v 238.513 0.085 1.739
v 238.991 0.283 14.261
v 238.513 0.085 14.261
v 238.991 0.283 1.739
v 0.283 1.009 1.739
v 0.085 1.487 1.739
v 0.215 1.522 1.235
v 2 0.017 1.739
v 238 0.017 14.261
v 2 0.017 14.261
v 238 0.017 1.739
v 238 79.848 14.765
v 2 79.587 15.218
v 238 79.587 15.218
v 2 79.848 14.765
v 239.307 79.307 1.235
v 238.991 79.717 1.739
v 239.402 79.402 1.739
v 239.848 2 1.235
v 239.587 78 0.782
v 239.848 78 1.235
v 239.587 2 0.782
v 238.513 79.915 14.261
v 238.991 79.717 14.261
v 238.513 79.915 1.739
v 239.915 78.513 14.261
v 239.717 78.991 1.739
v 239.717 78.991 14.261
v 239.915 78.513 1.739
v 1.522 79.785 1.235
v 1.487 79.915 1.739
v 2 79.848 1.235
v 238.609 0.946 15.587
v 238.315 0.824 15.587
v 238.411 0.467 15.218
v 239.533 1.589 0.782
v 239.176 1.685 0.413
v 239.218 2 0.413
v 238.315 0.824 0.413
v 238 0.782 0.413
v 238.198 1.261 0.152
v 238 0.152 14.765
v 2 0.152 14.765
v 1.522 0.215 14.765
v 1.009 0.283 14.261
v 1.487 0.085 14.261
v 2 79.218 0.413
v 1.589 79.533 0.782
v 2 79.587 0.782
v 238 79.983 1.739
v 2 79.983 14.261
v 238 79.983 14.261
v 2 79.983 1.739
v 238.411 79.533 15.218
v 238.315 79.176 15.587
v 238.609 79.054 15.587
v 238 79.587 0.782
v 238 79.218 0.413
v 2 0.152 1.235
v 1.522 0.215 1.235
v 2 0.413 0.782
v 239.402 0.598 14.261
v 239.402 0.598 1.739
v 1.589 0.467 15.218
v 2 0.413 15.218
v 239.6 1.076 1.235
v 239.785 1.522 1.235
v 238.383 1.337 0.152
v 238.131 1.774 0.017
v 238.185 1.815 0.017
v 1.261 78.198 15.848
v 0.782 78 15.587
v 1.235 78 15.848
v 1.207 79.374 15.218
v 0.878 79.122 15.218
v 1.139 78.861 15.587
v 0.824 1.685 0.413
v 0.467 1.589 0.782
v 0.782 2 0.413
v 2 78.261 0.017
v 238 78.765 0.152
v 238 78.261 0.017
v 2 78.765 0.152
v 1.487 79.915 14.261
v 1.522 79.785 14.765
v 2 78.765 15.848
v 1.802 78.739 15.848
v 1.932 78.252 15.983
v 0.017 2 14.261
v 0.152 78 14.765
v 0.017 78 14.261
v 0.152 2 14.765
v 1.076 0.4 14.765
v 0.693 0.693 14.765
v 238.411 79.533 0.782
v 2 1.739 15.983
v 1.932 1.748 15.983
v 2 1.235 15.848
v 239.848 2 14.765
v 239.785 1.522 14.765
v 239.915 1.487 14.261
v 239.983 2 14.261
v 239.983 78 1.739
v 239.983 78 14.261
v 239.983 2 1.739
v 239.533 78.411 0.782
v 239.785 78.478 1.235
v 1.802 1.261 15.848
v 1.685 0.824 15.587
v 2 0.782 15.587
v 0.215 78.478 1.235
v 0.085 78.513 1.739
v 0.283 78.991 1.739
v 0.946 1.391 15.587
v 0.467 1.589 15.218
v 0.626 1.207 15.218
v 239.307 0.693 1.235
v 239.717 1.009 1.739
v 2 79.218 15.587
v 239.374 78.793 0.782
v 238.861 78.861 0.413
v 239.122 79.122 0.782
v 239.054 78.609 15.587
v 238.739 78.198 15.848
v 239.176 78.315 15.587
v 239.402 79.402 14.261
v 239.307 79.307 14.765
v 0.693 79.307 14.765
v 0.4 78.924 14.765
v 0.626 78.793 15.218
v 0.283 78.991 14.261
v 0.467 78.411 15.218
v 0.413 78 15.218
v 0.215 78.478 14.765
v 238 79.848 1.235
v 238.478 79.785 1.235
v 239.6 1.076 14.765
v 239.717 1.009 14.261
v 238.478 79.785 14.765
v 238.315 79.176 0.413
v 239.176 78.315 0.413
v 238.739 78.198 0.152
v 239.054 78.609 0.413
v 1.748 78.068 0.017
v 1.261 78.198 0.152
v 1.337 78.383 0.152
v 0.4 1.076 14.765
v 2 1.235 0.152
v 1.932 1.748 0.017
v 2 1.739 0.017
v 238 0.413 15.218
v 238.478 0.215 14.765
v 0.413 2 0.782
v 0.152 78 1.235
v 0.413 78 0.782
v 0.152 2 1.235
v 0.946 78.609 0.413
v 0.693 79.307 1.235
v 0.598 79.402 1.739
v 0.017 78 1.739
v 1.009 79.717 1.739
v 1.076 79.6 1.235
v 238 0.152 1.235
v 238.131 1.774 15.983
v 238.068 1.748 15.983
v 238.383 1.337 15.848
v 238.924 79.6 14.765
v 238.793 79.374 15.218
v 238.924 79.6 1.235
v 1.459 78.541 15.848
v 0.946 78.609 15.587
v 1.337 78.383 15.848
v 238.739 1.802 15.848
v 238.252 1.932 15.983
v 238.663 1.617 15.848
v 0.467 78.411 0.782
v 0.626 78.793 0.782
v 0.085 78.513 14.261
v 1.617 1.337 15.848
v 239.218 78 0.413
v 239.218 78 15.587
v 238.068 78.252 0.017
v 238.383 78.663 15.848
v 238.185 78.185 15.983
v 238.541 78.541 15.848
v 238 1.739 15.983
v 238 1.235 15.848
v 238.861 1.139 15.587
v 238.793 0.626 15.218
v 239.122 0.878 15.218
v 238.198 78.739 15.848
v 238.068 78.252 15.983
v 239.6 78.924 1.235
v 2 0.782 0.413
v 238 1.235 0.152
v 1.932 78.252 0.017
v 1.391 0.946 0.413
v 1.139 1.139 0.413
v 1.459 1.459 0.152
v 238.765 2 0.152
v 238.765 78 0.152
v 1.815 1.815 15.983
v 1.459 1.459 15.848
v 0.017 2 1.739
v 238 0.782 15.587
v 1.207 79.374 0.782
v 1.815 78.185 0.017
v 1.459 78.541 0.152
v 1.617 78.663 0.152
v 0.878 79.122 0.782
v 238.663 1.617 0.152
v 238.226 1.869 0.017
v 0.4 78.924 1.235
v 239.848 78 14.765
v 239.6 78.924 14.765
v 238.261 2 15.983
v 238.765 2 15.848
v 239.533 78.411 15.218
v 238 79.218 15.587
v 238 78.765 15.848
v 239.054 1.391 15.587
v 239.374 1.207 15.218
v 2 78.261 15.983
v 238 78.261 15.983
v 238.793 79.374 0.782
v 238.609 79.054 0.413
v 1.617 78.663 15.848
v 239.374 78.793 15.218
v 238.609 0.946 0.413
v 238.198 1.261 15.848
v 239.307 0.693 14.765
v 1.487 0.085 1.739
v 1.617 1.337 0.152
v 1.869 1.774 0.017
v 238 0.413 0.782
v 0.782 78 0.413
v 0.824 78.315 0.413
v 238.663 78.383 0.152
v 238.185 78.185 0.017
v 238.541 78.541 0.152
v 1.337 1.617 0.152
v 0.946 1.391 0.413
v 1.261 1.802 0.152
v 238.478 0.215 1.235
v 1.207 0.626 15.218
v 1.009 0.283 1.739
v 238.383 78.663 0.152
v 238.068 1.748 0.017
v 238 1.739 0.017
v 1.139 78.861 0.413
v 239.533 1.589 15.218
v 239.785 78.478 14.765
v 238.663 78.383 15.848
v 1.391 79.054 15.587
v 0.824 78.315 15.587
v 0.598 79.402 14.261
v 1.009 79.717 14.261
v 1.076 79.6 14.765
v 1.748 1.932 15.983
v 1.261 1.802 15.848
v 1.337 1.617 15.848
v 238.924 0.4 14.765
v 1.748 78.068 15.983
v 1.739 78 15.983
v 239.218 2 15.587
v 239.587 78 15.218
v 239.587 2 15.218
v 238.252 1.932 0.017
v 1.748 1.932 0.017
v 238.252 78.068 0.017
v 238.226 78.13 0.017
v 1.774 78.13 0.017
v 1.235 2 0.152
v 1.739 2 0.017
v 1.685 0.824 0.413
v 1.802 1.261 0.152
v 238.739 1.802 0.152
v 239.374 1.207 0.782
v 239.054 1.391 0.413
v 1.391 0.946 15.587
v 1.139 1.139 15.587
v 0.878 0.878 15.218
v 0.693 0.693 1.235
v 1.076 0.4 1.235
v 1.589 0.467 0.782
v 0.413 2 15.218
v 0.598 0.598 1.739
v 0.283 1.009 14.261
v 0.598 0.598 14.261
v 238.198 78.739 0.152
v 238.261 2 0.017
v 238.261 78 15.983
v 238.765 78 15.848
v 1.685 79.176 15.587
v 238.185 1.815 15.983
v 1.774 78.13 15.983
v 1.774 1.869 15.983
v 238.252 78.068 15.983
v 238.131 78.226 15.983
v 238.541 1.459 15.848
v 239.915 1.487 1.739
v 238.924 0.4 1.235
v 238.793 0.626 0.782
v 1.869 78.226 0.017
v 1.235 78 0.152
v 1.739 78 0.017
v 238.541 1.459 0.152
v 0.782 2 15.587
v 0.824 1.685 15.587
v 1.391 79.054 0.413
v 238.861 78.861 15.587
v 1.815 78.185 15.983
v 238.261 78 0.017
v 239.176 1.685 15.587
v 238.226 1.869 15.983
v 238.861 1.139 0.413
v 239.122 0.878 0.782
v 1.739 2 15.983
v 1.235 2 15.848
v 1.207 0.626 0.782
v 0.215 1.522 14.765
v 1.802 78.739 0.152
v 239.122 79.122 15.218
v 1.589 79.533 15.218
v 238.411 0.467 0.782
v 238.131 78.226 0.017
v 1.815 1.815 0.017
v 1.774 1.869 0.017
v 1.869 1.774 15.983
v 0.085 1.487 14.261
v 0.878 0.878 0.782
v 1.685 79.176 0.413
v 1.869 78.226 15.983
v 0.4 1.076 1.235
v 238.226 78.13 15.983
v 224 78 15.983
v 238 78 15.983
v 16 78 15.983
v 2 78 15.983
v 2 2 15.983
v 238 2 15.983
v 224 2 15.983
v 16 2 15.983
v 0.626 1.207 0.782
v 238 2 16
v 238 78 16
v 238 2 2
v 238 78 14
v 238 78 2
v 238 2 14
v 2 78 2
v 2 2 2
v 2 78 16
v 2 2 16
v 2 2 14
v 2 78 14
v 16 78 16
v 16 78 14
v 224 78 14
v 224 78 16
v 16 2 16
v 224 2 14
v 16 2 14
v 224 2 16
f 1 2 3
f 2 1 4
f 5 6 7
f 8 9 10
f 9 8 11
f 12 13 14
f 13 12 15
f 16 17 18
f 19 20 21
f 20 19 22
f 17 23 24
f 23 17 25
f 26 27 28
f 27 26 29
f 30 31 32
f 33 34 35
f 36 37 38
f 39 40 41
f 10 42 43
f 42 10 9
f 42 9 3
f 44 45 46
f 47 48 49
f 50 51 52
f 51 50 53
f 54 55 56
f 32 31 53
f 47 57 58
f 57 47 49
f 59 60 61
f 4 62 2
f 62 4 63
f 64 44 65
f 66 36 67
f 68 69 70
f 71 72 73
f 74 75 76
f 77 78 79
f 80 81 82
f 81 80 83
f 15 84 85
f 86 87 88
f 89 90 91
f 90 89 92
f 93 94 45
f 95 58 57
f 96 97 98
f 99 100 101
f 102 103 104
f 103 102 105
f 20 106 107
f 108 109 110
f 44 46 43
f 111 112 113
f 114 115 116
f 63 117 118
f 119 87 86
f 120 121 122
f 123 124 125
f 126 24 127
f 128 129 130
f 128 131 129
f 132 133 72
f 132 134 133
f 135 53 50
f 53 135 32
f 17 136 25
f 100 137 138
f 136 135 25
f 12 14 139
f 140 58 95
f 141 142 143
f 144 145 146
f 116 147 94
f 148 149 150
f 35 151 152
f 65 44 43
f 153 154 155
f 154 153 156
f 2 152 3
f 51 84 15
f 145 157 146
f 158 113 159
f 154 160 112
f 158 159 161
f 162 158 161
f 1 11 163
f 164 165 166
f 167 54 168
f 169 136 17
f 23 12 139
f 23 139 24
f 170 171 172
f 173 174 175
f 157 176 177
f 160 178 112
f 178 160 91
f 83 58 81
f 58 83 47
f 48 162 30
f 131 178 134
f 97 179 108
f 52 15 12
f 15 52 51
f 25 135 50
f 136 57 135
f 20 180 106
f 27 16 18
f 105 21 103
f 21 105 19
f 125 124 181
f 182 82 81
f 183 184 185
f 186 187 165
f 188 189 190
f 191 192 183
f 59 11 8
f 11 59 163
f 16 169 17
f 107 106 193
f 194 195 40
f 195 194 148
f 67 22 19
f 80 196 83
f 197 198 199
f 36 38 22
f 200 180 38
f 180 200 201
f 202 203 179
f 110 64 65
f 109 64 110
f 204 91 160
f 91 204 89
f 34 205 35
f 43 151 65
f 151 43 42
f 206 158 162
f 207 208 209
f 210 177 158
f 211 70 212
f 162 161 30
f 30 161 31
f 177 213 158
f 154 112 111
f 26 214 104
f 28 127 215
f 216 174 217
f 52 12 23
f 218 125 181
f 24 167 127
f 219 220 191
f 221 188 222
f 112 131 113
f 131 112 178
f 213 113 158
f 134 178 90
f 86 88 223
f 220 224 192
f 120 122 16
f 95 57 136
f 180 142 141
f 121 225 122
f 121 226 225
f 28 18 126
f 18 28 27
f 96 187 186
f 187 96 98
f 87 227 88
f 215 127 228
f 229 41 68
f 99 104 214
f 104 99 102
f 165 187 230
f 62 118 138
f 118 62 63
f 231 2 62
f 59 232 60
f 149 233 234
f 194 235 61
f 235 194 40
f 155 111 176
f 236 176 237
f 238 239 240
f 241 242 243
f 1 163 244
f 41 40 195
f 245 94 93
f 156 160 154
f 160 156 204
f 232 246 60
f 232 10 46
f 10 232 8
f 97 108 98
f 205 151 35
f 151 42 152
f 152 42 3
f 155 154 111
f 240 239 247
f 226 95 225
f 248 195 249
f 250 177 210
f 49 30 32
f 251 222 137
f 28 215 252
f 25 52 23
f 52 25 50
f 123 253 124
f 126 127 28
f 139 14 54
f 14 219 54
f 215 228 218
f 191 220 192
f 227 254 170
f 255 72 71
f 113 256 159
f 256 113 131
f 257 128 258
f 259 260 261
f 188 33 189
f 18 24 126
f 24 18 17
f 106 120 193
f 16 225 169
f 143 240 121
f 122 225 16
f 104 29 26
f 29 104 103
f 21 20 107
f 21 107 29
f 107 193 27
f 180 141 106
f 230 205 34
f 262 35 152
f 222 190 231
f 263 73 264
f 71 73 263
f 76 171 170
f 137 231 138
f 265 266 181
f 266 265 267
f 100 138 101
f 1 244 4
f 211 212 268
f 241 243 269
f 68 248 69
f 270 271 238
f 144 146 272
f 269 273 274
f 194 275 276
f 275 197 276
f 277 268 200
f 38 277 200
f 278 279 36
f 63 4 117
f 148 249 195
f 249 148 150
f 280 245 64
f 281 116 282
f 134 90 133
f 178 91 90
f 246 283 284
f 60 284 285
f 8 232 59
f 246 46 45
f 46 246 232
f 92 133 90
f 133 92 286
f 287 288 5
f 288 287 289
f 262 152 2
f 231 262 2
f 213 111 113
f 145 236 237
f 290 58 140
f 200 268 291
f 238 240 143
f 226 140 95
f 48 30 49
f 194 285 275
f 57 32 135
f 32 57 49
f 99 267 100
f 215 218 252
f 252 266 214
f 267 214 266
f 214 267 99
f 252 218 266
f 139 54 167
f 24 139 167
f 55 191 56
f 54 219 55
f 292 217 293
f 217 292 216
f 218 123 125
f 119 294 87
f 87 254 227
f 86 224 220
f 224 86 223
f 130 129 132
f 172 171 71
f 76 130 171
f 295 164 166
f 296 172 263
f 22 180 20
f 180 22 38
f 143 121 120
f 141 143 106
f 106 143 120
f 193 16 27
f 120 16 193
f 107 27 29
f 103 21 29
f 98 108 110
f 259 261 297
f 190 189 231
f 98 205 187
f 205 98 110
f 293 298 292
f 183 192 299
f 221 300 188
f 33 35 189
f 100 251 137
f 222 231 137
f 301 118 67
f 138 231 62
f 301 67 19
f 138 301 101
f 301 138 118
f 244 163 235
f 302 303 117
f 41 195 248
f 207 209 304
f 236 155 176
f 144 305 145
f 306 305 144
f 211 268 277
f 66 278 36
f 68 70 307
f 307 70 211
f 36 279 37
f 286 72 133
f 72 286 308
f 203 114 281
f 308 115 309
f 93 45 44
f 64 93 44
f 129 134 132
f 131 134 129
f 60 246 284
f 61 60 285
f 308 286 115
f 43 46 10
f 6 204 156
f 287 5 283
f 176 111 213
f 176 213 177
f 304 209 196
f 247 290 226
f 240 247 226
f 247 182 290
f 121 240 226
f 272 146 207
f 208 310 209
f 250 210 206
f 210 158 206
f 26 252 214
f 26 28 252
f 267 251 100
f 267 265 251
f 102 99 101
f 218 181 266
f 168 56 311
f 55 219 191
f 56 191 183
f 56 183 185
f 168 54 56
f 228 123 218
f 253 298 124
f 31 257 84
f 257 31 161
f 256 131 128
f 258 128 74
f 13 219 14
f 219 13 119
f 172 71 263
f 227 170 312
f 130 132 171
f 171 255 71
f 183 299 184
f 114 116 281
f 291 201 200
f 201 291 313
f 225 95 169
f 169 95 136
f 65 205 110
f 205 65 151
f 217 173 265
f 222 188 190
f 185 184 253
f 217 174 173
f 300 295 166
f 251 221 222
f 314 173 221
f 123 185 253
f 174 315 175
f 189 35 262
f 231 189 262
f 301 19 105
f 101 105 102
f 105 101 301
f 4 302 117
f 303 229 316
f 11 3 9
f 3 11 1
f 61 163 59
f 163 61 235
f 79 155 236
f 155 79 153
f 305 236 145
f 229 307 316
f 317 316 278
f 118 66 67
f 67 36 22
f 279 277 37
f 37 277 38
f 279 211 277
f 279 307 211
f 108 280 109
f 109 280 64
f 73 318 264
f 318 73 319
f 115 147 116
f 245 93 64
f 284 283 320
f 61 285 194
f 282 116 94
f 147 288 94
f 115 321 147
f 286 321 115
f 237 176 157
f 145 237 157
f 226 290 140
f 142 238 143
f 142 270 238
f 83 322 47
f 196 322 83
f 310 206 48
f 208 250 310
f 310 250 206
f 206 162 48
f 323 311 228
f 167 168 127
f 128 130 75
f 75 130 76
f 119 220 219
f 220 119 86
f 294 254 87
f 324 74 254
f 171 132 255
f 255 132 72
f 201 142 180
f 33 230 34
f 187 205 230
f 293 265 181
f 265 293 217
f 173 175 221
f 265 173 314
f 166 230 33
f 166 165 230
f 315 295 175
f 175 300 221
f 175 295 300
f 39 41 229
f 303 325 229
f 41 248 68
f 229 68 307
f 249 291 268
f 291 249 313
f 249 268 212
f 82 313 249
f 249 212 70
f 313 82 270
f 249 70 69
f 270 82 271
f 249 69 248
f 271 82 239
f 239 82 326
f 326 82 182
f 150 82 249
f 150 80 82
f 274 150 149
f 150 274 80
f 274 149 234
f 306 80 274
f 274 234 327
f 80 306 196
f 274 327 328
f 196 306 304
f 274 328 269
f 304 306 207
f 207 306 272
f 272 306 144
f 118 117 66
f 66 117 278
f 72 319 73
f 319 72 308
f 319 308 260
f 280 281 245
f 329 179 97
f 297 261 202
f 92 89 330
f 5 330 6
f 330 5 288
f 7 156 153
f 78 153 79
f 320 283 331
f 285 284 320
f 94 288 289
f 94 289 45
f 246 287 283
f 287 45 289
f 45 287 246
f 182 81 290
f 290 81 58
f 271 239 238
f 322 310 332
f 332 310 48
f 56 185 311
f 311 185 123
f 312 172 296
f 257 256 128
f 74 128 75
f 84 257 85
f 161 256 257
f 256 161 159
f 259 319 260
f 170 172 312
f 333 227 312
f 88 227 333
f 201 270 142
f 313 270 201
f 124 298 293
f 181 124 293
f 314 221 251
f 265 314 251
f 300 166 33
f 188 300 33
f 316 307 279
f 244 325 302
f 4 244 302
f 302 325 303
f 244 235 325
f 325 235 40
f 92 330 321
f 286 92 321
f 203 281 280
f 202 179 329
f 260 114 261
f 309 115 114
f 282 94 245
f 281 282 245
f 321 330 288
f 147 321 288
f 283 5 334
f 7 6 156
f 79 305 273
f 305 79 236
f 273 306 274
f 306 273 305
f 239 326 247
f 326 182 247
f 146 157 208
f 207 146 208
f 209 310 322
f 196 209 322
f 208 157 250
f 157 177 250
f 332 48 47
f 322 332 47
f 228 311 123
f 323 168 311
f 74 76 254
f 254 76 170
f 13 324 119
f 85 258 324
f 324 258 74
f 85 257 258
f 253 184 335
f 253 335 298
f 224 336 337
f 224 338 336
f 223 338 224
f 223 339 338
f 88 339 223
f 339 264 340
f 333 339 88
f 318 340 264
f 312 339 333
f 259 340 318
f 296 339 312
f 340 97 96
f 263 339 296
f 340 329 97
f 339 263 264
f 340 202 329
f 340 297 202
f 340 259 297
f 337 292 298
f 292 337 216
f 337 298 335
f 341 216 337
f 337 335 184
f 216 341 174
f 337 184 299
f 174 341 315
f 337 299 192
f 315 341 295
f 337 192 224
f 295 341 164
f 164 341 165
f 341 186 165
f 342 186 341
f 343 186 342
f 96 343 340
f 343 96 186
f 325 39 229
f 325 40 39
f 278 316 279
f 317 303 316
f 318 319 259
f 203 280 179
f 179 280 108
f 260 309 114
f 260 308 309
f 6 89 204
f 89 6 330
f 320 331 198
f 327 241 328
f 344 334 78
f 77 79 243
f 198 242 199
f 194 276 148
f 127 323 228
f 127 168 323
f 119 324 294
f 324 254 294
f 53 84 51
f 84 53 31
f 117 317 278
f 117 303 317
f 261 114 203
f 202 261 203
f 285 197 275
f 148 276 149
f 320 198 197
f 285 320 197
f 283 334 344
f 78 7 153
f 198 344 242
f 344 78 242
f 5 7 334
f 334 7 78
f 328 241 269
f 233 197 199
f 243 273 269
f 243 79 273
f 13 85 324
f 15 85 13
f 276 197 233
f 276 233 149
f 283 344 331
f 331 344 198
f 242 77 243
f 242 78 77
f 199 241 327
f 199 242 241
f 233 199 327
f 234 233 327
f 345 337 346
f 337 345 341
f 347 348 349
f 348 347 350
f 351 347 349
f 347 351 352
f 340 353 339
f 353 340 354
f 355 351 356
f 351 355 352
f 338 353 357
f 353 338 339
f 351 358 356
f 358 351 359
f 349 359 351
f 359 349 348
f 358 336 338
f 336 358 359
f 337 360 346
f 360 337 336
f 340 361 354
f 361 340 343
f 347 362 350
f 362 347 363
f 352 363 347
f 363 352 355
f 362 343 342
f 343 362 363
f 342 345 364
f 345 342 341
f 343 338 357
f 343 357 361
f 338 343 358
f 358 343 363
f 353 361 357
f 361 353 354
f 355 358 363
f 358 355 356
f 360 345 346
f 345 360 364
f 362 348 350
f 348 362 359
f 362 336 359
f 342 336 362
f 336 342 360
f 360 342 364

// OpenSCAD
box_count = 3;
box_width = 80;
width = box_count * box_width;
depth = 80;
base_thickness = 2;
border_width = 2;
border_depth = 16;
tape_pad_width = 14;
tape_pad_thickness = 2;
tape_recess_depth = 0;
tape_margin = border_width;
tape_inset = border_width;
corner_radius = 2;
$fn = 24;

module rounded_box(size, radius) {
  translate([radius, radius, radius])
    minkowski() {
      cube([
        size[0] - 2 * radius,
        size[1] - 2 * radius,
        size[2] - 2 * radius
      ]);
      sphere(radius);
    }
}

union() {
  difference() {
    rounded_box([width, depth, border_depth], corner_radius);

    translate([border_width, border_width, base_thickness])
      cube([
        width - 2 * border_width,
        depth - 2 * border_width,
        border_depth - base_thickness + 1
      ]);
  }

  translate([
    tape_inset,
    tape_margin,
    border_depth - tape_recess_depth - tape_pad_thickness
  ])
    cube([
      tape_pad_width,
      depth - 2 * tape_margin,
      tape_pad_thickness
    ]);

  translate([
    width - tape_inset - tape_pad_width,
    tape_margin,
    border_depth - tape_recess_depth - tape_pad_thickness
  ])
    cube([
      tape_pad_width,
      depth - 2 * tape_margin,
      tape_pad_thickness
    ]);
}
